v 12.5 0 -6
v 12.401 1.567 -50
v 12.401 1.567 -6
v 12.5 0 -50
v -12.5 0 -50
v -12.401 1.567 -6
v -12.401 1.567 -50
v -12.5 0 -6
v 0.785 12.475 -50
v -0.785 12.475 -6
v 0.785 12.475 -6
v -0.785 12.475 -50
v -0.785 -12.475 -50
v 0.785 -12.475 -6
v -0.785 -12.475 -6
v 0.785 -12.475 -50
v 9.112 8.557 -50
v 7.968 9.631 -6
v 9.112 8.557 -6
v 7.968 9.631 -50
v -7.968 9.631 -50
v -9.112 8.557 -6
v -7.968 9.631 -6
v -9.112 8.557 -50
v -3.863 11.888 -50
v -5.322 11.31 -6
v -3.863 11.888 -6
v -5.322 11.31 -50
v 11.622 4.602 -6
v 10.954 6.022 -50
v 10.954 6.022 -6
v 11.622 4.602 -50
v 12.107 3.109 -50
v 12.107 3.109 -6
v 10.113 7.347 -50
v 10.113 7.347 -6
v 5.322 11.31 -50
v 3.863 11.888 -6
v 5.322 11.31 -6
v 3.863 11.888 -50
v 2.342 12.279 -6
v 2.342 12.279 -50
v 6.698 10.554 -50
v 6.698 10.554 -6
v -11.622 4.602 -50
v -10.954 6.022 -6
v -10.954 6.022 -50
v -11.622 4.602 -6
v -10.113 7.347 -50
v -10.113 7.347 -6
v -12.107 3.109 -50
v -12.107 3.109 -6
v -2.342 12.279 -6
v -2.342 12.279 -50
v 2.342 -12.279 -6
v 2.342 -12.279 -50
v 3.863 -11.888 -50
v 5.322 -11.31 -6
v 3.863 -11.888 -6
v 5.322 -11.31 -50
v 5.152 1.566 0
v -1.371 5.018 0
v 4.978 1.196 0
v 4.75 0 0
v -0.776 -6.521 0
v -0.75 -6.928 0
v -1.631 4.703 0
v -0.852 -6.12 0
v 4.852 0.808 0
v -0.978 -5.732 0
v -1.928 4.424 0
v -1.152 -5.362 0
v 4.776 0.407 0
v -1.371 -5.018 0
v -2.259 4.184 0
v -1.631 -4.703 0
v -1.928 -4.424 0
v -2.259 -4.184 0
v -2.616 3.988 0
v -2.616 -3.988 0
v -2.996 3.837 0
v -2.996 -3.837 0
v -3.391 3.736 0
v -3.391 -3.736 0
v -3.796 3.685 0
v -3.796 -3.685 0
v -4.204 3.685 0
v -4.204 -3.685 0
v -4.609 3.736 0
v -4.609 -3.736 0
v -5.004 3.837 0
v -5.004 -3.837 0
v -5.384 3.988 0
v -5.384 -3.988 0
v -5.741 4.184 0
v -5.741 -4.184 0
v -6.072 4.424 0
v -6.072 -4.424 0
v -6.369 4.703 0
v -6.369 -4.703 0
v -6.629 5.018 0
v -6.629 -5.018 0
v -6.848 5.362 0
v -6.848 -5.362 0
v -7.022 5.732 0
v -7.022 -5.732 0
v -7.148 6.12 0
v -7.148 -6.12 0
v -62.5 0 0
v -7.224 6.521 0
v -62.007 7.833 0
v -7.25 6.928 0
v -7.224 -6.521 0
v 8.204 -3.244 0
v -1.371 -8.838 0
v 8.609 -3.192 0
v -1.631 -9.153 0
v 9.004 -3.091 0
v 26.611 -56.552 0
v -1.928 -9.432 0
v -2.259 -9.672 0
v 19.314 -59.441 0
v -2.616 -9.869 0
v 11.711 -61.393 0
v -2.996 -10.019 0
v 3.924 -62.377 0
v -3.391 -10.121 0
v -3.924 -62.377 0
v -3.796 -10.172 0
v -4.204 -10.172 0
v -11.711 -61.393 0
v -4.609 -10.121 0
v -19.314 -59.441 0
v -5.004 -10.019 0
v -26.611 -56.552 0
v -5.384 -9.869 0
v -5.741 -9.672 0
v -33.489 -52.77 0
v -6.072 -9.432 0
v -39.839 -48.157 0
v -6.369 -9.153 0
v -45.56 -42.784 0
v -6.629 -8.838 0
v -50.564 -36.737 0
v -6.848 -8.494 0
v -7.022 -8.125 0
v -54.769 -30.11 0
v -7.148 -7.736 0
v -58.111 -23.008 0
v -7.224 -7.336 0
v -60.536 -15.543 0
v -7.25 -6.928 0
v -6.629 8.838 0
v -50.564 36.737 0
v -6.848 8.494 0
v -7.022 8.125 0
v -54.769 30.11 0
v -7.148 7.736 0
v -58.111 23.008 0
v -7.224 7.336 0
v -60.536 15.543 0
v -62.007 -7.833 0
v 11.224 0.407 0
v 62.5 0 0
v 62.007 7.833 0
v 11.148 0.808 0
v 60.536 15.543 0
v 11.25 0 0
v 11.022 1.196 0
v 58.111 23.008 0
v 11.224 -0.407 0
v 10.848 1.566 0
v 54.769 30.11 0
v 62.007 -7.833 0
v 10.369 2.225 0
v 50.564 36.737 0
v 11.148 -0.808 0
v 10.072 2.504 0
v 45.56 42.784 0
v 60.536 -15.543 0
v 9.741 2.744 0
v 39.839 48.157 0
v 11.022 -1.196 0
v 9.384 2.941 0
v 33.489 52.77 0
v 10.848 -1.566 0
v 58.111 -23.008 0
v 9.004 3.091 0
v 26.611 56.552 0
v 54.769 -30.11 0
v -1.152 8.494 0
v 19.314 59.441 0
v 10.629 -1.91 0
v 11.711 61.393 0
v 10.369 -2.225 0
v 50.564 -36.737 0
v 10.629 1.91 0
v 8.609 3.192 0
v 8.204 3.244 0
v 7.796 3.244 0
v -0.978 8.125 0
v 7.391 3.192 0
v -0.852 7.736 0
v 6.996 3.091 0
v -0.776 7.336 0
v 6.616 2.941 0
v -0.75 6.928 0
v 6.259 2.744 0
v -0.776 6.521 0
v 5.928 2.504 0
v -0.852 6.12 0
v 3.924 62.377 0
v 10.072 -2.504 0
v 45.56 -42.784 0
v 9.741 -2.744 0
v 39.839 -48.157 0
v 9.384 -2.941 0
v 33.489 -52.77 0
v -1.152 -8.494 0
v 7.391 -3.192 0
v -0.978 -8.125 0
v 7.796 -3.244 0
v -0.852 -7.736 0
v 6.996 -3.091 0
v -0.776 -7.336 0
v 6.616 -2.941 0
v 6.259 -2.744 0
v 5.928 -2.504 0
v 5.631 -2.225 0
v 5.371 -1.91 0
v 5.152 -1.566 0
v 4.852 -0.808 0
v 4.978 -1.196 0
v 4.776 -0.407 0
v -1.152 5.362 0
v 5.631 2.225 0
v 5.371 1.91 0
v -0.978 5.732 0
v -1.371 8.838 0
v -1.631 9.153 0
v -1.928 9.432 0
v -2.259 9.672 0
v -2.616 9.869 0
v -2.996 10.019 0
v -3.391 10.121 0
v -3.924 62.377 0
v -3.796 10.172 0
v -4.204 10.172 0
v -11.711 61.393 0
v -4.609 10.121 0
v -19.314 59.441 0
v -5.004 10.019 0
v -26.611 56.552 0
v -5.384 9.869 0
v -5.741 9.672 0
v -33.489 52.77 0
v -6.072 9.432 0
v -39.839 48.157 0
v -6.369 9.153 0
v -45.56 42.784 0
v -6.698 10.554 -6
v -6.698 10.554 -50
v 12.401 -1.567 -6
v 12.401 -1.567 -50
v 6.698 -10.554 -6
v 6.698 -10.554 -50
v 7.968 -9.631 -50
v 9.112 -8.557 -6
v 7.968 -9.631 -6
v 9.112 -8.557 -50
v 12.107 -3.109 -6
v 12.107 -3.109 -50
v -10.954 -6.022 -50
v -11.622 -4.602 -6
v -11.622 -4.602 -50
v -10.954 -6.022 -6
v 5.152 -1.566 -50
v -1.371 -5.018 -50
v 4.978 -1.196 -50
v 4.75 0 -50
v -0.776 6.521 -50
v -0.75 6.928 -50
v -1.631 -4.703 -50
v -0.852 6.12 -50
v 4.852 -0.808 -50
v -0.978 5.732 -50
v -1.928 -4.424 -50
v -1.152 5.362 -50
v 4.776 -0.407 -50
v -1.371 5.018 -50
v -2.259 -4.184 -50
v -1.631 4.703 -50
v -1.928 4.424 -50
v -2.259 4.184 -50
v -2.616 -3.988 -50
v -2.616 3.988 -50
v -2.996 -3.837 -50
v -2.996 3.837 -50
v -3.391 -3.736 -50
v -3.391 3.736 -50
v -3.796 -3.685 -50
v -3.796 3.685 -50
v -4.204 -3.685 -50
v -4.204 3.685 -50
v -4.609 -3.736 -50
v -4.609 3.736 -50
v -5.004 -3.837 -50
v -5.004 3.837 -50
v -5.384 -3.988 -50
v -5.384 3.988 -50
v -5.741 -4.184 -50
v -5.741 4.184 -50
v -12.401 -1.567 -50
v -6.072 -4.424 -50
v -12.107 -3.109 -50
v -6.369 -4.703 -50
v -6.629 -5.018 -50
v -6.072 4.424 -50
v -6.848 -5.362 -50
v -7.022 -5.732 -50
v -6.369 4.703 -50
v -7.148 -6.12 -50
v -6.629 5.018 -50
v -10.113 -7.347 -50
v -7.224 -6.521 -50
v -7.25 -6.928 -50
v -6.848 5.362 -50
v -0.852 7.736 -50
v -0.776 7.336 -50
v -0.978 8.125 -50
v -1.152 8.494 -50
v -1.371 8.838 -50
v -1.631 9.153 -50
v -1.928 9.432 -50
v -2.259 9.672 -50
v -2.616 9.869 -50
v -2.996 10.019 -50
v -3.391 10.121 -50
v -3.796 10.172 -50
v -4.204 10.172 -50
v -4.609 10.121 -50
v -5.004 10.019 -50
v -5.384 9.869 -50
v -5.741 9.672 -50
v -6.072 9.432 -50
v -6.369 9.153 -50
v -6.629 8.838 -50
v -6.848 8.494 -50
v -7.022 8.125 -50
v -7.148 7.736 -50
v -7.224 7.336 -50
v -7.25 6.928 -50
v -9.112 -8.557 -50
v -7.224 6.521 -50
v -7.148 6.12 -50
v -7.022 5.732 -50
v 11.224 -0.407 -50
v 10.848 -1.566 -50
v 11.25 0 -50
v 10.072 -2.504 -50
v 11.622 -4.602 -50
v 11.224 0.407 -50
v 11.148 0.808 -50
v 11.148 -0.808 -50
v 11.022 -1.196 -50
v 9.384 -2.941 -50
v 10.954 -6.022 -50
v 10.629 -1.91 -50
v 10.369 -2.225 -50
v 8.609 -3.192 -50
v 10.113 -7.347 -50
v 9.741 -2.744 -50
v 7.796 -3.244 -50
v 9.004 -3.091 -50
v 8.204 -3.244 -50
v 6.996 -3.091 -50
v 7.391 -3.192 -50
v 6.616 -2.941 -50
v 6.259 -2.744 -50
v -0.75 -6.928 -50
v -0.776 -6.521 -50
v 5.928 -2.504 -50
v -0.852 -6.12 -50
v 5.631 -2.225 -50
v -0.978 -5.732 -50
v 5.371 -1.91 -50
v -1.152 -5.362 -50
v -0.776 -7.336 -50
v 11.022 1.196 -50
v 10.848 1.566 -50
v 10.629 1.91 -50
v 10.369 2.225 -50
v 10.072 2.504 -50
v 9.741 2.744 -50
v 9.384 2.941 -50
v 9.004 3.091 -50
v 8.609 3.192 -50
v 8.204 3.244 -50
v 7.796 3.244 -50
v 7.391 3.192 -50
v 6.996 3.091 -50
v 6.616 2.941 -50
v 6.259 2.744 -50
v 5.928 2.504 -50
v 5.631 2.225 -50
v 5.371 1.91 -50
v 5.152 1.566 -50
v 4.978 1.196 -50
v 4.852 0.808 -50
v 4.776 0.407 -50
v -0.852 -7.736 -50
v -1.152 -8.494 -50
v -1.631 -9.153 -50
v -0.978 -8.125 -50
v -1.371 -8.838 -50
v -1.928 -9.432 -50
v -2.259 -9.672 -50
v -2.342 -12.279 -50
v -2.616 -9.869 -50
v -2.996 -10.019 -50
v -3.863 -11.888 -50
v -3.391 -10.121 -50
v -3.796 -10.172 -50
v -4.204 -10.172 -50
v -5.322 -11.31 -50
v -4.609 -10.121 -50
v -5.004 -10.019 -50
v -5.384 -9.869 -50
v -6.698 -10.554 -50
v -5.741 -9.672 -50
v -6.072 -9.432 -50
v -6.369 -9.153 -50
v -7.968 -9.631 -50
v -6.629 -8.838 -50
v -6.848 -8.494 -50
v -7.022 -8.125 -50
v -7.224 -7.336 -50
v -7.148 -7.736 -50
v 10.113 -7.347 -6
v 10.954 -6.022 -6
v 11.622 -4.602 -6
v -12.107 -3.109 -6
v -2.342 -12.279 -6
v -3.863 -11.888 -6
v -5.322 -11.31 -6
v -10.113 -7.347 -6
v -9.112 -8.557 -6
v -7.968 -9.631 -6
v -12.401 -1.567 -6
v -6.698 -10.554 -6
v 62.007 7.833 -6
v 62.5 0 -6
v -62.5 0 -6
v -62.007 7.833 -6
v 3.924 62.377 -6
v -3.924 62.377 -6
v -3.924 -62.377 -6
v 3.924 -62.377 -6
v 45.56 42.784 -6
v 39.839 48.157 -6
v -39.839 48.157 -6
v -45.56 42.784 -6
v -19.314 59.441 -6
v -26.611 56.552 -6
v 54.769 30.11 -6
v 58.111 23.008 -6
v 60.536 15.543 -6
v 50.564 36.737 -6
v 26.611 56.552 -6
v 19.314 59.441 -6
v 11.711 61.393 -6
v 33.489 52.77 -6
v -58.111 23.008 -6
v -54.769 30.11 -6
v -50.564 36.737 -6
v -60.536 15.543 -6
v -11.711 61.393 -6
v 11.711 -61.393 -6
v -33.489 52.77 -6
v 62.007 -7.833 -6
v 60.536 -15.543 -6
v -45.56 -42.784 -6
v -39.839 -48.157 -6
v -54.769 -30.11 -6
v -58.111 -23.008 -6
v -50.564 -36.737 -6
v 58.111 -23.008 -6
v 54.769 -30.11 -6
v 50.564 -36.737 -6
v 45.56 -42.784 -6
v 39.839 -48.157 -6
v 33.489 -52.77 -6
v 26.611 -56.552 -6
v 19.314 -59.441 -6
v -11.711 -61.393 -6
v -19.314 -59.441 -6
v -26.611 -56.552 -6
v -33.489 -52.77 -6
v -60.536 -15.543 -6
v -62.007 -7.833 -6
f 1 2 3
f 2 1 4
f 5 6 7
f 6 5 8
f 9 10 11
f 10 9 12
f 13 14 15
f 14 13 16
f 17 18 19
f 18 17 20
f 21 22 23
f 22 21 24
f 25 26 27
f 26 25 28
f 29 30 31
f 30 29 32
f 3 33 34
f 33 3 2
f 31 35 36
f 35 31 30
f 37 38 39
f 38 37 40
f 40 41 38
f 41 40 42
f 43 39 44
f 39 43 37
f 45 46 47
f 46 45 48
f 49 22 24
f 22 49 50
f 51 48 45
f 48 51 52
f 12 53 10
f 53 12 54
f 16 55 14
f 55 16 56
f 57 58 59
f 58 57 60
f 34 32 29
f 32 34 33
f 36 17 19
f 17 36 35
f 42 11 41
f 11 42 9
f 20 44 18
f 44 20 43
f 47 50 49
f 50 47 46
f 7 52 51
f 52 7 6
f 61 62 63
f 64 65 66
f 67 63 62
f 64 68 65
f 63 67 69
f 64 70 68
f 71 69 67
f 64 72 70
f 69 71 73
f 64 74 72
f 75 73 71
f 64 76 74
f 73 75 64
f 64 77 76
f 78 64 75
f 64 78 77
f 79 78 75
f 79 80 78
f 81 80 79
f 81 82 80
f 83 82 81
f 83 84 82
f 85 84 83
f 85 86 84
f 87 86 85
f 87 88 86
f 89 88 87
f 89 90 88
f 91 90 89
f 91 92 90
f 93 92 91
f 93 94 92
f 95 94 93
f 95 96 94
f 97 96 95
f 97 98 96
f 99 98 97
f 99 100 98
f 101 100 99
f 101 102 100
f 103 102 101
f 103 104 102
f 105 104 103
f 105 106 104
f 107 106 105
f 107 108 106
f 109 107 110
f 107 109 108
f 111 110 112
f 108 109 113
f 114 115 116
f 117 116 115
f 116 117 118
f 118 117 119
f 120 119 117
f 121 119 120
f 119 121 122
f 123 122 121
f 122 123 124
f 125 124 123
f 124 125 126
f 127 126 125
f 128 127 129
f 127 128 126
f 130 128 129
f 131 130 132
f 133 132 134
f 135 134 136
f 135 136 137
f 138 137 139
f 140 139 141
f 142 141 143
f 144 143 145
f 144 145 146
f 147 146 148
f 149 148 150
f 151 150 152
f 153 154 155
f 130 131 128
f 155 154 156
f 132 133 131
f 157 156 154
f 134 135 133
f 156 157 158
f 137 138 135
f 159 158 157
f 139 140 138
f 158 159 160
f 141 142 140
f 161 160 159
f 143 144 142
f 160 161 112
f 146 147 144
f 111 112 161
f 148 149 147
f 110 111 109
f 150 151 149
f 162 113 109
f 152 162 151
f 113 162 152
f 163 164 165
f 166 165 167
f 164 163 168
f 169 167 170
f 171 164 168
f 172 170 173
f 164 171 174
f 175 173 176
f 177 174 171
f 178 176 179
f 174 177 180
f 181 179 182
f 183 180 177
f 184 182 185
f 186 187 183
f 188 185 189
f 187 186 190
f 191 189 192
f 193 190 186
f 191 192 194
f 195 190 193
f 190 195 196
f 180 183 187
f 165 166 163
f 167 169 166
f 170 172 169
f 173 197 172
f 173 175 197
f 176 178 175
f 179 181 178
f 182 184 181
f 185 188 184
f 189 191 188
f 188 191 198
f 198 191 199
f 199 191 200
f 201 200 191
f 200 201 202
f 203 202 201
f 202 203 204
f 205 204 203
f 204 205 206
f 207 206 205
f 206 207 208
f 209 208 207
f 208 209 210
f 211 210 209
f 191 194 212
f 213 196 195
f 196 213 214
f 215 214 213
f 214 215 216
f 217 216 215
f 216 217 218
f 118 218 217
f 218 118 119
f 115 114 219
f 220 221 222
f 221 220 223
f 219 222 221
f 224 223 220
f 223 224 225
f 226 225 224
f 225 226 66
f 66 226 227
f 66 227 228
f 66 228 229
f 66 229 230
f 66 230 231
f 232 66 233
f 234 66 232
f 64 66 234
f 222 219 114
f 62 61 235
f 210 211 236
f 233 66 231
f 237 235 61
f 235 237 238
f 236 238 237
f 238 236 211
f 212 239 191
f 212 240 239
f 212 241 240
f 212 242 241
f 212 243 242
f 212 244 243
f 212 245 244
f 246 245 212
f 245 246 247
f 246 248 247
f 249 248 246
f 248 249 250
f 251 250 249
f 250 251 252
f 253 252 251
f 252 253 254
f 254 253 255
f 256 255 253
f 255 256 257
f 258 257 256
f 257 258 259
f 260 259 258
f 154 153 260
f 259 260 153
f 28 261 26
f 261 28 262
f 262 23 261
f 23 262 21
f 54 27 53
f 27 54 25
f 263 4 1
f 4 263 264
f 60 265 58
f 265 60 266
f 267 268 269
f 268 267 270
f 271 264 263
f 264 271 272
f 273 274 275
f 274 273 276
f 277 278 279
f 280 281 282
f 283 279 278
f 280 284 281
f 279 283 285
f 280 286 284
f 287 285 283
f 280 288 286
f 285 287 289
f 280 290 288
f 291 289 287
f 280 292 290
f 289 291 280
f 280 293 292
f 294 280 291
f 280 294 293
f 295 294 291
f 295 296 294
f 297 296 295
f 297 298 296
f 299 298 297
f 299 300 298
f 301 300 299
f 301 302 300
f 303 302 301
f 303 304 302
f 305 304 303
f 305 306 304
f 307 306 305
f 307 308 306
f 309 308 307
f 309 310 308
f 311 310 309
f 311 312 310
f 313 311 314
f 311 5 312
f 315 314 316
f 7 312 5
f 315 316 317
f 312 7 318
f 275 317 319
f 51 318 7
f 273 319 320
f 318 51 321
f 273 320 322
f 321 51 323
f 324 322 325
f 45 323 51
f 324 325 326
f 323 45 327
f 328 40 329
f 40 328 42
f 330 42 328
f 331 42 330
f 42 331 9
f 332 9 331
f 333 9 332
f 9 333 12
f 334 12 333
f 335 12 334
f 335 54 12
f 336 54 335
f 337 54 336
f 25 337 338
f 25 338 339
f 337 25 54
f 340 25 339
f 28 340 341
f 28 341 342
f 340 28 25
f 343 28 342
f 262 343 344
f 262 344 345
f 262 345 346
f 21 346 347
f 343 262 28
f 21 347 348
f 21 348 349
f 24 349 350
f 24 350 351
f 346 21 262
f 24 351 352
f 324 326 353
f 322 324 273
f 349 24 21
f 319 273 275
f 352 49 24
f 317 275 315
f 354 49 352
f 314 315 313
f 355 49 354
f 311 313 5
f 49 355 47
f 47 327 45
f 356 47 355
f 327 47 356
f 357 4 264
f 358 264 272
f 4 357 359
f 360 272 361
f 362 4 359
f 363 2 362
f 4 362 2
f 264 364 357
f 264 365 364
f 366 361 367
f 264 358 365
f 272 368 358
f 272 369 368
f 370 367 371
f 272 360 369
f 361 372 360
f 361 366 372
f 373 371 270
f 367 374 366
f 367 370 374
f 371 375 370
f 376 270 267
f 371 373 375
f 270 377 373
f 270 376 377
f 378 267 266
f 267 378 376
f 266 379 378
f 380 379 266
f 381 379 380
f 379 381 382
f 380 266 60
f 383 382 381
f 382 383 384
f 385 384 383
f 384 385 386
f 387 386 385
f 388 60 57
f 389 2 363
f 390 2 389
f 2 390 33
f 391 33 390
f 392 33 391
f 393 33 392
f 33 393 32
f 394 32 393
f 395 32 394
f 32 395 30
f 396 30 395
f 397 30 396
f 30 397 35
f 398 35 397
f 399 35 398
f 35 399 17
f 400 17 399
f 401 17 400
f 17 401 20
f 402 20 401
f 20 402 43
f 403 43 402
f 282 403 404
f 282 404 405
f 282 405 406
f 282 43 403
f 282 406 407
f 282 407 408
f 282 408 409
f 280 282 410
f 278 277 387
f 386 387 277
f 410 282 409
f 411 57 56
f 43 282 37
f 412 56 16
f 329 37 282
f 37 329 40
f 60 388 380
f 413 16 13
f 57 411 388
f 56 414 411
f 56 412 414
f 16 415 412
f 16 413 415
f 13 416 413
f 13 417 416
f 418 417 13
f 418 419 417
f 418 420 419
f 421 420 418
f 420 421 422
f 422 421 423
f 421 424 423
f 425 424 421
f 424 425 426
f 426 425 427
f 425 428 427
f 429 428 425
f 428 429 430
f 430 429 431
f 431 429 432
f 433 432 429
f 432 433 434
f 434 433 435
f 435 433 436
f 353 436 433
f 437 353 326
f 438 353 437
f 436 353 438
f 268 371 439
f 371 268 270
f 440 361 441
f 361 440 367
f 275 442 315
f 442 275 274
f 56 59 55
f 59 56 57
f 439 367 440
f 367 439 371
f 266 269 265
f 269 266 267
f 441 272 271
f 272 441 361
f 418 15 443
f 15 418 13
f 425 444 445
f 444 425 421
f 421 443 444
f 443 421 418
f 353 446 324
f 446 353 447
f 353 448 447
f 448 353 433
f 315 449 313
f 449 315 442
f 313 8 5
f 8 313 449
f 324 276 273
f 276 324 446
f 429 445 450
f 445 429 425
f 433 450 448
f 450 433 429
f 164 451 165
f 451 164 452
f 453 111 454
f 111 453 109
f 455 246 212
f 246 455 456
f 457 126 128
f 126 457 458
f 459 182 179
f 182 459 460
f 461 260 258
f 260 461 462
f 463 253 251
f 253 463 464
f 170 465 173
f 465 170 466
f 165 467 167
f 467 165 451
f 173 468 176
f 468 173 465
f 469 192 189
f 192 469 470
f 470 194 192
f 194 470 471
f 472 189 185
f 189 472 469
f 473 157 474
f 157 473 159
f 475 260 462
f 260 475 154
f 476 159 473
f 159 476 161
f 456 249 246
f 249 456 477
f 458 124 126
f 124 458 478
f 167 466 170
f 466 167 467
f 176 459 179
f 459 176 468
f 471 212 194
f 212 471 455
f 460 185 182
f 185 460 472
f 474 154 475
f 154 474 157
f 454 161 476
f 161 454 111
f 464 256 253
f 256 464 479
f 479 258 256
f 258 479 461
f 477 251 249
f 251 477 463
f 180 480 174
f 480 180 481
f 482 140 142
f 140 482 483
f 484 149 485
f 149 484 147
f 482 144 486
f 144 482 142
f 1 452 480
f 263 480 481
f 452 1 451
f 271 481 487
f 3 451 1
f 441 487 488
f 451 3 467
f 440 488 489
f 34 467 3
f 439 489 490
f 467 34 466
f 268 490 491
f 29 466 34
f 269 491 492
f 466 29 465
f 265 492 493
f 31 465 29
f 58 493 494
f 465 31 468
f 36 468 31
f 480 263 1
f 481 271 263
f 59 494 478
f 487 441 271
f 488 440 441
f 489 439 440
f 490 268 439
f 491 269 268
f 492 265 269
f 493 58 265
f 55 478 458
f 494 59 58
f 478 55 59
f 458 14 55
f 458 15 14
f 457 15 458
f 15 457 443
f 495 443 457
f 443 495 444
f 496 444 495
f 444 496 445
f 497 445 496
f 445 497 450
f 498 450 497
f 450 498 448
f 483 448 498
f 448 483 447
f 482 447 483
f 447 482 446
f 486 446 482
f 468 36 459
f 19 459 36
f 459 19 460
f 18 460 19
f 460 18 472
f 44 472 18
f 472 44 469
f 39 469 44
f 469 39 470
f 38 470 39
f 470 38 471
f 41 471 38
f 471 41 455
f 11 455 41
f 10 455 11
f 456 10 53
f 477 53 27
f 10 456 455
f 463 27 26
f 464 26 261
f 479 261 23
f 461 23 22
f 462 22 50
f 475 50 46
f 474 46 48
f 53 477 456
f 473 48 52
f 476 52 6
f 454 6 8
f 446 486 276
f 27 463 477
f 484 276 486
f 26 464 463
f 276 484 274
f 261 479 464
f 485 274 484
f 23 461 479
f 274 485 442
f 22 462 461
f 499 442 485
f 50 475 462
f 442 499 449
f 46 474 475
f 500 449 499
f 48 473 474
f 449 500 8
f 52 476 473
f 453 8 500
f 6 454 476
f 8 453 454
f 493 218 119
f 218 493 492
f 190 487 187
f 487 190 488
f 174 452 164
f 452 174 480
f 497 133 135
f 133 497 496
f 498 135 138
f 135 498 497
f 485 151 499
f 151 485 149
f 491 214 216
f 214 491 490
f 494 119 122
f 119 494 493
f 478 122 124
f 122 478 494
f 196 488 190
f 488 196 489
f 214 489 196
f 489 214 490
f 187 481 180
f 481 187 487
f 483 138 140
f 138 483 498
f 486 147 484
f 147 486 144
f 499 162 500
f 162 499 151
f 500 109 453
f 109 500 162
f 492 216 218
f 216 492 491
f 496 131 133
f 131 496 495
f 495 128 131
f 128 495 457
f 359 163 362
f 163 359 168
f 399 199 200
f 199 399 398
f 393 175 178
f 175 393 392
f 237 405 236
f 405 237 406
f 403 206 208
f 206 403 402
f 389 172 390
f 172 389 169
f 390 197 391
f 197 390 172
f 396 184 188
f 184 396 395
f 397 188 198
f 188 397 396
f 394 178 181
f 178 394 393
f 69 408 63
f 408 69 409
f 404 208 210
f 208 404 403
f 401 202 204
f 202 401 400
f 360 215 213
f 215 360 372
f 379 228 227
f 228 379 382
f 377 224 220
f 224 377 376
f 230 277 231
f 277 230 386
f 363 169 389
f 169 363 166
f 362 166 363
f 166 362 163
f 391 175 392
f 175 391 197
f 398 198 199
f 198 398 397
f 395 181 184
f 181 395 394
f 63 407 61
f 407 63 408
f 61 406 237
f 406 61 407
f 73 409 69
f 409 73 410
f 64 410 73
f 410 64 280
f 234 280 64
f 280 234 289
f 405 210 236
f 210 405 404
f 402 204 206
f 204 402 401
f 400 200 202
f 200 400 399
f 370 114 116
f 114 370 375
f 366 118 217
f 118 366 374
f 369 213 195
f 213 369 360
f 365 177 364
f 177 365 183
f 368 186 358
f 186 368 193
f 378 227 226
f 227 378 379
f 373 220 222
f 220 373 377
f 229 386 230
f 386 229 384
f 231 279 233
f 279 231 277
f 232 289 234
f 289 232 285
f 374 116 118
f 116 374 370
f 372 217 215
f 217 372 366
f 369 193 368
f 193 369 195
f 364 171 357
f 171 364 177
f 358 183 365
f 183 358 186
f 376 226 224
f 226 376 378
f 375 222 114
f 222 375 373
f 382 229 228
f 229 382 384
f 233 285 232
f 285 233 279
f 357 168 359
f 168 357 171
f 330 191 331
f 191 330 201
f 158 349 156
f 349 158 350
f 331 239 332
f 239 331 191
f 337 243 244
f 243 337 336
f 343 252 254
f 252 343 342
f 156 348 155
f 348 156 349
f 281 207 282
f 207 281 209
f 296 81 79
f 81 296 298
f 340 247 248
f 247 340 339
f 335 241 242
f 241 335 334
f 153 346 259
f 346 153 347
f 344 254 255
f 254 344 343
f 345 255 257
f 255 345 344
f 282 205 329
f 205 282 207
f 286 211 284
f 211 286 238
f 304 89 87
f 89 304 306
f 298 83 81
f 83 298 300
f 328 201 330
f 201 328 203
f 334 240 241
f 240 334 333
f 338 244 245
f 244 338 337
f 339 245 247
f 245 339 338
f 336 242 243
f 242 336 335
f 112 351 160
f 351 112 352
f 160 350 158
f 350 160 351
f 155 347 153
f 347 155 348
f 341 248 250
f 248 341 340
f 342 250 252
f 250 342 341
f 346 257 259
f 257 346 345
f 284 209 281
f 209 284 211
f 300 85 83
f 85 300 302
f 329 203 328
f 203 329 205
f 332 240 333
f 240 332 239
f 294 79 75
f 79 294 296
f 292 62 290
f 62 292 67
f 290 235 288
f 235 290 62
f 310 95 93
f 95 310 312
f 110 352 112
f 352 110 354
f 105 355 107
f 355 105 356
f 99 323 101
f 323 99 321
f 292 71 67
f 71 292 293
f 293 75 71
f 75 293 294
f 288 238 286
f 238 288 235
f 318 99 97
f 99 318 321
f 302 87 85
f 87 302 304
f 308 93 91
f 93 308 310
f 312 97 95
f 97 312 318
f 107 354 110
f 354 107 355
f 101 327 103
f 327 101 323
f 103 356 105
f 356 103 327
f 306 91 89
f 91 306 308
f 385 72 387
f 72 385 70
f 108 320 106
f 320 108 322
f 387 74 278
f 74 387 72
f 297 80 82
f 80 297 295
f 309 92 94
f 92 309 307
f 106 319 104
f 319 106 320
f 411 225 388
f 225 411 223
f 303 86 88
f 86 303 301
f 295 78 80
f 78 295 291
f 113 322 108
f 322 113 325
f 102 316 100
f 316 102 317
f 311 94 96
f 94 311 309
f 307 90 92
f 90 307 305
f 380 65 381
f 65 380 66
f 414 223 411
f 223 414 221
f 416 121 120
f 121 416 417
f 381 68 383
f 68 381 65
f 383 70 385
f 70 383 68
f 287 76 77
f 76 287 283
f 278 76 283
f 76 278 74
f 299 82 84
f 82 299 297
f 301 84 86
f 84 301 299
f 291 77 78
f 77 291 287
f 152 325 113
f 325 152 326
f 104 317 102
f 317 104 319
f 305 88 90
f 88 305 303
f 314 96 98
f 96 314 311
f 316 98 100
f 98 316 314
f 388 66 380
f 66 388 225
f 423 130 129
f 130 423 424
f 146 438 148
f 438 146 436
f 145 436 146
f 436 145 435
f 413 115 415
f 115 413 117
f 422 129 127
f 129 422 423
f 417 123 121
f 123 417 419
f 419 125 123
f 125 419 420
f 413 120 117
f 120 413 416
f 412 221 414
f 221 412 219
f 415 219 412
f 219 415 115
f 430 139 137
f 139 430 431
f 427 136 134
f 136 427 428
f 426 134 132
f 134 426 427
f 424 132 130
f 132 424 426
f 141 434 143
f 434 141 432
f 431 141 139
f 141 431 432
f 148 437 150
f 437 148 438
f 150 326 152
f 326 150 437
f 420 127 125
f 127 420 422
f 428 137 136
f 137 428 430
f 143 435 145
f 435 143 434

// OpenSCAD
$fn = 50;


difference() {
	union() {
		translate(v = [0, 0, -50.0000000000]) {
			cylinder(h = 50, r = 12.5000000000);
		}
		translate(v = [0, 0, -6.0000000000]) {
			cylinder(h = 6, r = 62.5000000000);
		}
	}
	union() {
		#translate(v = [8.0000000000, 0.0000000000, -50]) {
			cylinder(h = 50, r = 3.2500000000);
		}
		#translate(v = [-4.0000000000, 6.9282032303, -50]) {
			cylinder(h = 50, r = 3.2500000000);
		}
		#translate(v = [-4.0000000000, -6.9282032303, -50]) {
			cylinder(h = 50, r = 3.2500000000);
		}
	}
}
